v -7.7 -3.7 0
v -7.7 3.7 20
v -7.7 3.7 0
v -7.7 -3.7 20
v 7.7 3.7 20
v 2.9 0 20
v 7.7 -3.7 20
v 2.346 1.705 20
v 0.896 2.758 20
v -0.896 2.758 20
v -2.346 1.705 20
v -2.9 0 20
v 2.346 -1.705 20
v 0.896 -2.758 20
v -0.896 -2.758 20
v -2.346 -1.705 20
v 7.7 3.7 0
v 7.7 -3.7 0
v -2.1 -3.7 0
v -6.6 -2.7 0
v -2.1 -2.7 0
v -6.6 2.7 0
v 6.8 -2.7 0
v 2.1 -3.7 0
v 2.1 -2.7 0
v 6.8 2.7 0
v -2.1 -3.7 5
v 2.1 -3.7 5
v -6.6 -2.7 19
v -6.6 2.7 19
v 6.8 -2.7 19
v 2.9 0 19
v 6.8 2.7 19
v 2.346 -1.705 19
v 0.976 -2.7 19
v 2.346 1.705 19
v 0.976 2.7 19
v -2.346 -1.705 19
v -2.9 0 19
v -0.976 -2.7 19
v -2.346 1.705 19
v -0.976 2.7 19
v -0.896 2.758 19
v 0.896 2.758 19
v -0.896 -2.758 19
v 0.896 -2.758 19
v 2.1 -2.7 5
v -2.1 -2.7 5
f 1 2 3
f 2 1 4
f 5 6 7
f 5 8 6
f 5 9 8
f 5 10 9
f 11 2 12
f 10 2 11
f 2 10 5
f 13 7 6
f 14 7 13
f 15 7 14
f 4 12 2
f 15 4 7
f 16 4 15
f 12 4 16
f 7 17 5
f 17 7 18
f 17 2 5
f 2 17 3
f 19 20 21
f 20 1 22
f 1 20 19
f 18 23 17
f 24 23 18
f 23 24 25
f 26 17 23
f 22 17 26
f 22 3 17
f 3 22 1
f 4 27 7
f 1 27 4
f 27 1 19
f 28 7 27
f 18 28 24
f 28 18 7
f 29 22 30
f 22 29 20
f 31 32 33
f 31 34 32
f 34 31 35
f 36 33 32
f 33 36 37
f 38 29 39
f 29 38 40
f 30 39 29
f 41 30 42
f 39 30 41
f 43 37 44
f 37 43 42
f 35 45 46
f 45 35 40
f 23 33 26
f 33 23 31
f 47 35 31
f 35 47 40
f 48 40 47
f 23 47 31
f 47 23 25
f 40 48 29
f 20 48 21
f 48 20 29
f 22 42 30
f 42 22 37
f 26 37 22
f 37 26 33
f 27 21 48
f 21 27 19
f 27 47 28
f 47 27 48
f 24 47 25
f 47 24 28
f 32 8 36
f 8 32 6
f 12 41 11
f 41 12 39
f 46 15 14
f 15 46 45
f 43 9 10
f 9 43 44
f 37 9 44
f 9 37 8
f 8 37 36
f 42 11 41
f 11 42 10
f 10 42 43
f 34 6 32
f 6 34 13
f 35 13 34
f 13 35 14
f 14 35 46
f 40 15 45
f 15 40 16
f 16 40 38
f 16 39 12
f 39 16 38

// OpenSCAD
difference() {

translate([-7.7,-3.7,0]) {    
cube([15.4,7.4,20]);
}

{
translate([-6.6,-2.7,0]) {  
cube([13.4,5.4,19]);
}

translate([-2.1,-3.7,-0]) {       
cube([4.2,2.2,5]);
    
}

translate([0,0,19]) {

cylinder(5,2.9,2.9);    
    
}

}

}
